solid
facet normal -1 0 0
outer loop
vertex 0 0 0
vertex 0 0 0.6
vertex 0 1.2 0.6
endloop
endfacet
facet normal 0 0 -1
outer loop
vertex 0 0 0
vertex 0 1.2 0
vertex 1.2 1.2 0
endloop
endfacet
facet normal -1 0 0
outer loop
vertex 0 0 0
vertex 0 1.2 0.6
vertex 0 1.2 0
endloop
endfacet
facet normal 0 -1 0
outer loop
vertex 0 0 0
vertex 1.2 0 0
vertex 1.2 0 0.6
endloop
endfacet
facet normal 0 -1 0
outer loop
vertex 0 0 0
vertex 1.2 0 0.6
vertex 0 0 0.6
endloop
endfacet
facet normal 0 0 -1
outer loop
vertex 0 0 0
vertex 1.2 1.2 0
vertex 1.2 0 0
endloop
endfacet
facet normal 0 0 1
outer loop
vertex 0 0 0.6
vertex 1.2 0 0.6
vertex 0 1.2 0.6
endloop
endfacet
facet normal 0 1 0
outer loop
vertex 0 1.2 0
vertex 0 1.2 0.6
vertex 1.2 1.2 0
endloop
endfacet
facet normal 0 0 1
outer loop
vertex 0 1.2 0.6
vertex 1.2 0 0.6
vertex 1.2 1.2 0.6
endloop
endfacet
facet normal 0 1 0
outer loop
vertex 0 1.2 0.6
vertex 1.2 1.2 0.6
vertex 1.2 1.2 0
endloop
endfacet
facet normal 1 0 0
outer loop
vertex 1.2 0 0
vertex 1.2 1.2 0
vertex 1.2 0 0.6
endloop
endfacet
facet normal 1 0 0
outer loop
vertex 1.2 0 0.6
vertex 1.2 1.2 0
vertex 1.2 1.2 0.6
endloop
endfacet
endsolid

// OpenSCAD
/* Warning, this is a very basic generator with a lot of approximation 
input data : [UQFN, MBA, 1.2x1.2x0.6mm, 6, , A, C04-01046A]
generated by com.zoubworld.electronics.cad.model3d.Basic
Date : Sun Feb 15 10:50:49 CET 2026
*/

//body
color("black")
translate([0,0,0])
cube([1.2,1.2,0.6], center=false);
